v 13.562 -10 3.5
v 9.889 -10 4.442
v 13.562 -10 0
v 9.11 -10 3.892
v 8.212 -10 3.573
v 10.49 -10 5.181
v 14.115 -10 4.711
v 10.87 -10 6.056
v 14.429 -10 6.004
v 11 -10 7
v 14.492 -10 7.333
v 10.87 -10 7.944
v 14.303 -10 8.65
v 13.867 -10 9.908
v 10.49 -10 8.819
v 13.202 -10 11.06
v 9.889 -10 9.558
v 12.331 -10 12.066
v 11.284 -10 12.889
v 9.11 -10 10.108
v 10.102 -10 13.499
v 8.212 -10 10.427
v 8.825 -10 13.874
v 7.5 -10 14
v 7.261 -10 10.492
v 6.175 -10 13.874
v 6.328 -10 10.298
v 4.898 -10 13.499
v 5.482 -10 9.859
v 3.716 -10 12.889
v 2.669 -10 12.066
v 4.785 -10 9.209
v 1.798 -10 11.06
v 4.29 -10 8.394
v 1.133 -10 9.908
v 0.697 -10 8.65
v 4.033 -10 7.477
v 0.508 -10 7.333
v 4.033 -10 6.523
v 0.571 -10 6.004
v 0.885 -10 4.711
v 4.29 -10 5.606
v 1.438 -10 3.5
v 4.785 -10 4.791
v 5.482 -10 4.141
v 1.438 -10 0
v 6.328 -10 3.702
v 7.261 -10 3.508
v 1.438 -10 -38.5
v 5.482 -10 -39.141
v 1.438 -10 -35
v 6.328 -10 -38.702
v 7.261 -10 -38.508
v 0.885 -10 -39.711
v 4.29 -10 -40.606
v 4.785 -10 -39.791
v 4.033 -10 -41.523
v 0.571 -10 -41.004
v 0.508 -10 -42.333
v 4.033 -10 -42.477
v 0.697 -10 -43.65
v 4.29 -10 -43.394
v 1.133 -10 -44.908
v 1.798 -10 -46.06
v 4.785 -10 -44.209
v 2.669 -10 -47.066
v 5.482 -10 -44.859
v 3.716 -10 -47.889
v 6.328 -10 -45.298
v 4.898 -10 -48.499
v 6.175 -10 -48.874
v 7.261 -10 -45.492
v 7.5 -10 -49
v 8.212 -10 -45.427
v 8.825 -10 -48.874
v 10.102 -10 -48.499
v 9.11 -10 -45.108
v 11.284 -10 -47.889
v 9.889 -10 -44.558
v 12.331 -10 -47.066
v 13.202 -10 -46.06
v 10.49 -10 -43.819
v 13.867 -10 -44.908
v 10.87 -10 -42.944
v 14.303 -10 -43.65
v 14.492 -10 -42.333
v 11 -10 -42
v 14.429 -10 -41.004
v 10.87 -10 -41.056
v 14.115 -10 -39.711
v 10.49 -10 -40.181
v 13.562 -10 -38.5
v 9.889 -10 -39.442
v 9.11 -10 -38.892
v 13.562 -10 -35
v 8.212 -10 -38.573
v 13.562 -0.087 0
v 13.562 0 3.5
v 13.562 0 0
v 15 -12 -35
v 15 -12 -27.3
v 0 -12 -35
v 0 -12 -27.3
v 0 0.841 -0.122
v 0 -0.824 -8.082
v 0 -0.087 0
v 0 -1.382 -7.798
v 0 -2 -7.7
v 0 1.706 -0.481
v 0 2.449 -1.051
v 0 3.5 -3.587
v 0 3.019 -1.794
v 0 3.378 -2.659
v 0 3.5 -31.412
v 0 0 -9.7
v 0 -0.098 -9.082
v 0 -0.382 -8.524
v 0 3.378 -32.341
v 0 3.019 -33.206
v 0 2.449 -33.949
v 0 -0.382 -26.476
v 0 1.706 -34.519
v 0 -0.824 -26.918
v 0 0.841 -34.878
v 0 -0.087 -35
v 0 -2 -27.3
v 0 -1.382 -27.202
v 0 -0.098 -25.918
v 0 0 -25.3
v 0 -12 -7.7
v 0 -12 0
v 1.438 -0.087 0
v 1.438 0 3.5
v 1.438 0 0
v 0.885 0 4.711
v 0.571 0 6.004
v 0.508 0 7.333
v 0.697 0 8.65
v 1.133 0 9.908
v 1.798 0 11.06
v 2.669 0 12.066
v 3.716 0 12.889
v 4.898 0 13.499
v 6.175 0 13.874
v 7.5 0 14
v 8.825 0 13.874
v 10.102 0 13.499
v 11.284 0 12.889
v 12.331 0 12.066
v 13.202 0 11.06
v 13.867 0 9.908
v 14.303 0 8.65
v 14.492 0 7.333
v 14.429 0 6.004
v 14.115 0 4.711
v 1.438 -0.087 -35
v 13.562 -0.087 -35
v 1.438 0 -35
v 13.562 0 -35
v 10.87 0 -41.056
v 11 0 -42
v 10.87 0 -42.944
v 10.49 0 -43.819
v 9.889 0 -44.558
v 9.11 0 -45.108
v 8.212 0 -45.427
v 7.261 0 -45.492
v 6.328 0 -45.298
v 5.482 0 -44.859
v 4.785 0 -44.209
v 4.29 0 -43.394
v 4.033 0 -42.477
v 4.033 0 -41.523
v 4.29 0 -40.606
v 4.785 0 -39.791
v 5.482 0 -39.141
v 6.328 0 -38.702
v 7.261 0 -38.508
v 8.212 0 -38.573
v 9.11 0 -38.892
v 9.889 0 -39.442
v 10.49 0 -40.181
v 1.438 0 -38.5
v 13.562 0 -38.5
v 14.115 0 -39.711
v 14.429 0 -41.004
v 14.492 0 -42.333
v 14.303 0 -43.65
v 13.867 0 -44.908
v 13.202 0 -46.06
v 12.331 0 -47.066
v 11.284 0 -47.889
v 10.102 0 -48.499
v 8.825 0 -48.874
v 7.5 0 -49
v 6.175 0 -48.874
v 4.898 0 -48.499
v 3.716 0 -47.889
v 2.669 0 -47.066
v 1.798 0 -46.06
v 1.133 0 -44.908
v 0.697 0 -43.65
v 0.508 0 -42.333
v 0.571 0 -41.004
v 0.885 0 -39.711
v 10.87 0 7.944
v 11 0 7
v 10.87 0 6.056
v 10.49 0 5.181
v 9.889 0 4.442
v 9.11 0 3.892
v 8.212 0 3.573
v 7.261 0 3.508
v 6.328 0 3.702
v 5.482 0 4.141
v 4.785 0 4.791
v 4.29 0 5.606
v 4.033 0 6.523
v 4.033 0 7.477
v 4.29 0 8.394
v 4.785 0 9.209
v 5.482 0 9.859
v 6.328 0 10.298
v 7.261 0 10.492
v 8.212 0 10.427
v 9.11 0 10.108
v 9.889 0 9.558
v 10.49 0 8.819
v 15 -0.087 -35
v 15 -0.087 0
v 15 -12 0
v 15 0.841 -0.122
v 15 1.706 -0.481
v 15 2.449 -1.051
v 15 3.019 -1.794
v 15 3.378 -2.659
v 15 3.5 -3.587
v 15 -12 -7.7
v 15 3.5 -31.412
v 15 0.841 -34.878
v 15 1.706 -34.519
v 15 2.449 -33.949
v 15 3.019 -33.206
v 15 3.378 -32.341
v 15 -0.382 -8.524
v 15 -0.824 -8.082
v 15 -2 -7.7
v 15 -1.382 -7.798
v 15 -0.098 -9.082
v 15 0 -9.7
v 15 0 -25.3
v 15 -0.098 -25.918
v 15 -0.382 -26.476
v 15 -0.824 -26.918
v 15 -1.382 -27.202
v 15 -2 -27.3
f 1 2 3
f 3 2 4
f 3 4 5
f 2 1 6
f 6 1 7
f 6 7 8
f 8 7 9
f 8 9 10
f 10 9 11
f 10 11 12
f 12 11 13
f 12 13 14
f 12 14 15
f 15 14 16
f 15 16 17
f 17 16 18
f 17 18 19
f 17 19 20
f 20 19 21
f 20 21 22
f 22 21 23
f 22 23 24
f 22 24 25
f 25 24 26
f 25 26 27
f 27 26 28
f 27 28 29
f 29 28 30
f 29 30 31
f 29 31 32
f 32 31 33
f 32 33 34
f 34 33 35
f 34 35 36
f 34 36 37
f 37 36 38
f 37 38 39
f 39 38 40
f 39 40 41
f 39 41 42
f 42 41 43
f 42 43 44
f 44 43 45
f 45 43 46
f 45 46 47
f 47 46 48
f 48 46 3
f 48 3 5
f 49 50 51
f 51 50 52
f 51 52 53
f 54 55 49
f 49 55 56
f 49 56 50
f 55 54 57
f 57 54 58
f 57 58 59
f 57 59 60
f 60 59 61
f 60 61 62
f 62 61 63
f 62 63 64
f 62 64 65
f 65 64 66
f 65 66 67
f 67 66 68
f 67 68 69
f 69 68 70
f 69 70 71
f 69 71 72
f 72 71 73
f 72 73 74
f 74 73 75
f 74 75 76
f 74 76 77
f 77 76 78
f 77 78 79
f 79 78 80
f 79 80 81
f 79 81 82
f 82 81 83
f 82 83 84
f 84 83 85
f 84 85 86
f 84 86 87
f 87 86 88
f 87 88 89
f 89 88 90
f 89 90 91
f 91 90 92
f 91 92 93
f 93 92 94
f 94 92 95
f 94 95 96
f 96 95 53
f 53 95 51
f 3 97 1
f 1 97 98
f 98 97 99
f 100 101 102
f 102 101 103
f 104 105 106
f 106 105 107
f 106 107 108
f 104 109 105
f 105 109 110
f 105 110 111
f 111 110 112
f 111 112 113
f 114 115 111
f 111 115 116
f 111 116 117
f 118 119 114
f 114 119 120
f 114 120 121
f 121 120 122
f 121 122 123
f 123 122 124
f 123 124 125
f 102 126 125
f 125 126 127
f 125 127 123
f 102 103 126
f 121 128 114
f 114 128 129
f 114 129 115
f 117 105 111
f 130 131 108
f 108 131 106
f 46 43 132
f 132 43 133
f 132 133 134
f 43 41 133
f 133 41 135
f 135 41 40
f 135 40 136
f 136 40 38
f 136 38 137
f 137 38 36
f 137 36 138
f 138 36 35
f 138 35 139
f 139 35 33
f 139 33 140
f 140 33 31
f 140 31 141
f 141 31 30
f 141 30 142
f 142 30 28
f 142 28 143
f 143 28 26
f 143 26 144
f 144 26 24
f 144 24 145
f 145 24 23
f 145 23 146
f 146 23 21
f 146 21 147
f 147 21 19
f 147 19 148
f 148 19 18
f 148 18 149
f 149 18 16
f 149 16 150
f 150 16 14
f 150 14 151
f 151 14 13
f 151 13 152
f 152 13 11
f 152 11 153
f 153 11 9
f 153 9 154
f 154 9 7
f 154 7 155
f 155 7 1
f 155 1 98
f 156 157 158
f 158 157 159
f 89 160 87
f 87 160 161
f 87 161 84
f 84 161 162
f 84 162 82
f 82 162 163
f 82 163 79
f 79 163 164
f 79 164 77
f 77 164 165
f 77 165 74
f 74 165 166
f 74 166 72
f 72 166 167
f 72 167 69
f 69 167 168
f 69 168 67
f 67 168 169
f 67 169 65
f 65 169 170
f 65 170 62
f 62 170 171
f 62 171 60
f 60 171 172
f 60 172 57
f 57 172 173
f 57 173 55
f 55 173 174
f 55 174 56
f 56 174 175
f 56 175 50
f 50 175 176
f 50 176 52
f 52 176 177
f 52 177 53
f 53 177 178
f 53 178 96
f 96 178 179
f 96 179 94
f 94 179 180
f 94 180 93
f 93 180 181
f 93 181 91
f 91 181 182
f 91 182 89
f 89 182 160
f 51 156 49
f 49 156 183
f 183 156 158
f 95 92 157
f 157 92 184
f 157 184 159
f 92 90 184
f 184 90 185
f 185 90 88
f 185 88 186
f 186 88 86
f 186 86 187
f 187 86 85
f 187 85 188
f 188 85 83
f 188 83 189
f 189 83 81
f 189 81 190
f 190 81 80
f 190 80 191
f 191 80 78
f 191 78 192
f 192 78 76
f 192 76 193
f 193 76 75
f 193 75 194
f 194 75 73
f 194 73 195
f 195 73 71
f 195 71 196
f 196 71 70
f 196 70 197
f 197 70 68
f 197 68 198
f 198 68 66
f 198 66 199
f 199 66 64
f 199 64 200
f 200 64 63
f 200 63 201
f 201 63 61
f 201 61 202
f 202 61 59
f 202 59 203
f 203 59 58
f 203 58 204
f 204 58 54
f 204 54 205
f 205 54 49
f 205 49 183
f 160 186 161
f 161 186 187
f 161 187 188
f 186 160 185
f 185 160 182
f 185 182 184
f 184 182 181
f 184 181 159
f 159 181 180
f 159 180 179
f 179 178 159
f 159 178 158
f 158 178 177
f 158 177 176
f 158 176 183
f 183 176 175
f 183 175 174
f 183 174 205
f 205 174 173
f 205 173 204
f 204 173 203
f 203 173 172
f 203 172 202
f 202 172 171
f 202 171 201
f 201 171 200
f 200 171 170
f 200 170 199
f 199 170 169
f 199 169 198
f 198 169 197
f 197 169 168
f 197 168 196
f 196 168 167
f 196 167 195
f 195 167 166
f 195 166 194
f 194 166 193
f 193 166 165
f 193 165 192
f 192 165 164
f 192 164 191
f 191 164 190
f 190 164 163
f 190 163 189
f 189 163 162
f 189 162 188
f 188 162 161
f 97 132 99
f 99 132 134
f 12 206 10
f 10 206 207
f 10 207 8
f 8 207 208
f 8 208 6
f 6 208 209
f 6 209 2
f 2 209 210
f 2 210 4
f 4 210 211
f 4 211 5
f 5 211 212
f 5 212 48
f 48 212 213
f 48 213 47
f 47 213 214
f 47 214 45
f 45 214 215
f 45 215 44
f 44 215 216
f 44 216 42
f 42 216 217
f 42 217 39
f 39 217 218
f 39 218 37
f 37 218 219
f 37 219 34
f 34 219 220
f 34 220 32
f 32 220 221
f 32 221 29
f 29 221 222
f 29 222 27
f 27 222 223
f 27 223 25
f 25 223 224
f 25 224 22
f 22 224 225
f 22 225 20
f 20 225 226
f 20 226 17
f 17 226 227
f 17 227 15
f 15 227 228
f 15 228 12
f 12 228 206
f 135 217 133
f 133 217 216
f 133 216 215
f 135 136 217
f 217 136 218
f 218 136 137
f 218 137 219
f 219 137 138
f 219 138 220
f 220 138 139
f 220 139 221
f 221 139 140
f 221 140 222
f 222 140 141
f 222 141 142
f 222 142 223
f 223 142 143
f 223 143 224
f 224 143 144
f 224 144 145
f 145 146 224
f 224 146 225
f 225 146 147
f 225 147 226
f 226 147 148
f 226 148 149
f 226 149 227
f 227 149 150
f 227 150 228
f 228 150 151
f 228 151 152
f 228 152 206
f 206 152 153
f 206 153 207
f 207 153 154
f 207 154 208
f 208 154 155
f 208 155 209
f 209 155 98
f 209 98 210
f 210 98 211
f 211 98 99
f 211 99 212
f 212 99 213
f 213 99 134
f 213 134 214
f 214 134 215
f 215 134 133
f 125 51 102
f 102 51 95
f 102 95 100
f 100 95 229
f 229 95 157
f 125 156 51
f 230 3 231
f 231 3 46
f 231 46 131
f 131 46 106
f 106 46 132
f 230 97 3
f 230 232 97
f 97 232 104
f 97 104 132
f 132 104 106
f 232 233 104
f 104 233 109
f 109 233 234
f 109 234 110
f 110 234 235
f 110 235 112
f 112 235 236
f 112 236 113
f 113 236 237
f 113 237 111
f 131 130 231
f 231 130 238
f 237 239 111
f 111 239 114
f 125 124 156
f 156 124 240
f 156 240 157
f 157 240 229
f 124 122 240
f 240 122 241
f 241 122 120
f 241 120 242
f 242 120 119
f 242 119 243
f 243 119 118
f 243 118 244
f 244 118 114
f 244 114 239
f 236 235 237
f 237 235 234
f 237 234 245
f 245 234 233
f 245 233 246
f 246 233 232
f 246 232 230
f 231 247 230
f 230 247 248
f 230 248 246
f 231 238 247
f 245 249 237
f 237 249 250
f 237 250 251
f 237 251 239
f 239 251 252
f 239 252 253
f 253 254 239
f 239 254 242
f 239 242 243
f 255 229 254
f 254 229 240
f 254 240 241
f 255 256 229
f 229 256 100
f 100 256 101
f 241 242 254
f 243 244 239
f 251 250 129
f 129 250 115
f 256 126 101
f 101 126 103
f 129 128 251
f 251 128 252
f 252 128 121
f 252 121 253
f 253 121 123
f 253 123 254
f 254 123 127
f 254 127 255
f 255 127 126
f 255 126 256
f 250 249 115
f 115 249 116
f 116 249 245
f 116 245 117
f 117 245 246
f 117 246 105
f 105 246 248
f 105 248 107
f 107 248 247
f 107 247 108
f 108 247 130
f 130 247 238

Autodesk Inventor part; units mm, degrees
ref_plane "YZ Plane" through (0, 0, 0) normal (1, 0, 0) x (0, 1, 0)
ref_plane "XZ Plane" through (0, 0, 0) normal (0, 1, 0) x (-1, 0, 0)
ref_plane "XY Plane" through (0, 0, 0) normal (0, 0, 1) x (1, 0, 0)
sketch "Sketch1" plane through (0, 0, 0) normal (1, 0, 0) x (0, 1, 0)
  point P0 (0, 0)
sketch "Sketch2" plane through (0, 0, 0) normal (0, 1, 0) x (-1, 0, 0)
  point P0 (0, 0)
sketch "Sketch3" plane through (0, 0, 0) normal (0, 1, 0) x (-1, 0, 0)
  line L0 (0, 0) -> (-15, 0)
  line L1 (-15, 0) -> (-15, -35)
  line L2 (-15, -35) -> (0, -35)
  line L3 (0, -35) -> (0, 0)
  dimension "d0" = 35
  dimension "d1" = 15
extrude "Extrusion1" add sketch "Sketch3" along normal blind 3.5
sketch "Sketch4" plane through (0, 0, 0) normal (0, -1, 0) x (1, 0, 0)
  point P0 (0, 0)
sketch "Sketch5" plane through (0, 0, 0) normal (0, -1, 0) x (1, 0, 0)
  line L0 (15, 0) -> (15, -35) projected
  line L1 (15, 0) -> (0, 0)
  line L2 (0, 0) -> (0, -6.5)
  line L3 (0, -6.5) -> (15, -6.5)
  line L4 (15, -6.5) -> (15, 0)
  line L5 (0, -35) -> (0, 0) projected
  line L6 (15, -35) -> (0, -35)
  line L7 (0, -35) -> (0, -28.5)
  line L8 (0, -28.5) -> (15, -28.5)
  line L9 (15, -28.5) -> (15, -35)
  dimension "d4" = 6.5
  dimension "d5" = 6.5
extrude "Extrusion2" add sketch "Sketch5" along normal blind 12 contours L0 L3 L2 L1 | L0 L6 L5 L8
fillet "Fillet2" radius 3.5875 2 edges at (7.5, 3.5, -35) (7.5, 3.5, 0)
sketch "Sketch7" plane through (0, 3.5, 0) normal (0, 1, 0) x (1, 0, 0)
  point P0 (0, 0)
sketch "Sketch8" plane through (0, -12, 0) normal (0, -1, 0) x (1, 0, 0)
  circle A0 centre (7.5, 7) radius 7
  circle A1 centre (7.5, -42) radius 7
  line L0 (15, 0) -> (0, 0) projected
  line L1 (0, -35) -> (15, -35) projected
  circle A2 centre (7.5, 7) radius 3.5
  circle A3 centre (7.5, -42) radius 3.5
  line L2 (0, 0) -> (15, 0) projected
  line L3 (13.5622, 0) -> (1.4378, 0)
  line L4 (1.4378, 0) -> (1.4378, 3.5)
  line L5 (1.4378, 3.5) -> (13.5622, 3.5)
  line L6 (13.5622, 3.5) -> (13.5622, 0)
  line L7 (13.5622, -35) -> (1.4378, -35)
  line L8 (1.4378, -35) -> (1.4378, -38.5)
  line L9 (1.4378, -38.5) -> (13.5622, -38.5)
  line L10 (13.5622, -38.5) -> (13.5622, -35)
  point P0 (7.5, 0)
  point P1 (7.5, -35)
  dimension "d14" = 14
  dimension "d15" = 14
  dimension "d16" = 7
  dimension "d17" = 7
extrude "Extrusion4" add sketch "Sketch8" against normal blind 12 contours A0 L5 | L5 A0 | L6 L0 A0 | A1 L9 | L9 A1 | A1 L1 L10 | L8 L1 A1
sketch "Sketch9" plane through (0, -12, 0) normal (0, -1, 0) x (1, 0, 0)
  line L0 (7.5, 0) -> (13.5622, 0) projected
  line L1 (7.5, 0) -> (1.4378, 0)
  line L2 (1.4378, 0) -> (1.4378, 3.5)
  line L3 (1.4378, 3.5) -> (7.5, 3.5)
  line L4 (7.5, 3.5) -> (7.5, 0)
  arc A0 (13.5622, 3.5) -> (7.5, 0) centre (7.5, 7) ccw projected
  point P0 (0, 0)
extrude "Extrusion5" add sketch "Sketch9" against normal blind 12
sketch "Sketch10" plane through (0, -12, 0) normal (0, -1, 0) x (1, 0, 0)
  line L0 (15, 0) -> (13.5622, 0) projected
  line L1 (15, 0) -> (0, 0)
  line L2 (0, 0) -> (0, 14.6227)
  line L3 (0, 14.6227) -> (15, 14.6227)
  line L4 (15, 14.6227) -> (15, 0)
  line L5 (15, -31.4125) -> (15, -35) projected
  line L6 (15, -35) -> (0, -35)
  line L7 (0, -35) -> (0, -49.9262)
  line L8 (0, -49.9262) -> (15, -49.9262)
  line L9 (15, -49.9262) -> (15, -35)
  point P0 (0, 0)
extrude "Extrusion6" cut sketch "Sketch10" against normal blind 2
sketch "Sketch11" plane through (0, -12, 0) normal (0, -1, 0) x (1, 0, 0)
  line L0 (0, -6.5) -> (15, -6.5) projected
  line L1 (0, -6.5) -> (15, -6.5)
  line L2 (15, -6.5) -> (15, -7.7)
  line L3 (15, -7.7) -> (0, -7.7)
  line L4 (0, -7.7) -> (0, -6.5)
  line L5 (15, -6.5) -> (15, -28.5) projected
  line L6 (0, -28.5) -> (0, -6.5) projected
  line L7 (15, -28.5) -> (0, -28.5)
  line L8 (0, -28.5) -> (0, -27.3)
  line L9 (0, -27.3) -> (15, -27.3)
  line L10 (15, -27.3) -> (15, -28.5)
  point P0 (0, 0)
  dimension "d24" = 1.2
  dimension "d25" = 1.2
extrude "Extrusion7" add sketch "Sketch11" against normal blind 12 contours L0 L2 L3 L4 | L9 L5 L7 L6
fillet "Fillet4" radius 2 2 edges at (7.5, 0, -7.7) (7.5, 0, -27.3)
properties part number "HP45 Printhead Cap"
